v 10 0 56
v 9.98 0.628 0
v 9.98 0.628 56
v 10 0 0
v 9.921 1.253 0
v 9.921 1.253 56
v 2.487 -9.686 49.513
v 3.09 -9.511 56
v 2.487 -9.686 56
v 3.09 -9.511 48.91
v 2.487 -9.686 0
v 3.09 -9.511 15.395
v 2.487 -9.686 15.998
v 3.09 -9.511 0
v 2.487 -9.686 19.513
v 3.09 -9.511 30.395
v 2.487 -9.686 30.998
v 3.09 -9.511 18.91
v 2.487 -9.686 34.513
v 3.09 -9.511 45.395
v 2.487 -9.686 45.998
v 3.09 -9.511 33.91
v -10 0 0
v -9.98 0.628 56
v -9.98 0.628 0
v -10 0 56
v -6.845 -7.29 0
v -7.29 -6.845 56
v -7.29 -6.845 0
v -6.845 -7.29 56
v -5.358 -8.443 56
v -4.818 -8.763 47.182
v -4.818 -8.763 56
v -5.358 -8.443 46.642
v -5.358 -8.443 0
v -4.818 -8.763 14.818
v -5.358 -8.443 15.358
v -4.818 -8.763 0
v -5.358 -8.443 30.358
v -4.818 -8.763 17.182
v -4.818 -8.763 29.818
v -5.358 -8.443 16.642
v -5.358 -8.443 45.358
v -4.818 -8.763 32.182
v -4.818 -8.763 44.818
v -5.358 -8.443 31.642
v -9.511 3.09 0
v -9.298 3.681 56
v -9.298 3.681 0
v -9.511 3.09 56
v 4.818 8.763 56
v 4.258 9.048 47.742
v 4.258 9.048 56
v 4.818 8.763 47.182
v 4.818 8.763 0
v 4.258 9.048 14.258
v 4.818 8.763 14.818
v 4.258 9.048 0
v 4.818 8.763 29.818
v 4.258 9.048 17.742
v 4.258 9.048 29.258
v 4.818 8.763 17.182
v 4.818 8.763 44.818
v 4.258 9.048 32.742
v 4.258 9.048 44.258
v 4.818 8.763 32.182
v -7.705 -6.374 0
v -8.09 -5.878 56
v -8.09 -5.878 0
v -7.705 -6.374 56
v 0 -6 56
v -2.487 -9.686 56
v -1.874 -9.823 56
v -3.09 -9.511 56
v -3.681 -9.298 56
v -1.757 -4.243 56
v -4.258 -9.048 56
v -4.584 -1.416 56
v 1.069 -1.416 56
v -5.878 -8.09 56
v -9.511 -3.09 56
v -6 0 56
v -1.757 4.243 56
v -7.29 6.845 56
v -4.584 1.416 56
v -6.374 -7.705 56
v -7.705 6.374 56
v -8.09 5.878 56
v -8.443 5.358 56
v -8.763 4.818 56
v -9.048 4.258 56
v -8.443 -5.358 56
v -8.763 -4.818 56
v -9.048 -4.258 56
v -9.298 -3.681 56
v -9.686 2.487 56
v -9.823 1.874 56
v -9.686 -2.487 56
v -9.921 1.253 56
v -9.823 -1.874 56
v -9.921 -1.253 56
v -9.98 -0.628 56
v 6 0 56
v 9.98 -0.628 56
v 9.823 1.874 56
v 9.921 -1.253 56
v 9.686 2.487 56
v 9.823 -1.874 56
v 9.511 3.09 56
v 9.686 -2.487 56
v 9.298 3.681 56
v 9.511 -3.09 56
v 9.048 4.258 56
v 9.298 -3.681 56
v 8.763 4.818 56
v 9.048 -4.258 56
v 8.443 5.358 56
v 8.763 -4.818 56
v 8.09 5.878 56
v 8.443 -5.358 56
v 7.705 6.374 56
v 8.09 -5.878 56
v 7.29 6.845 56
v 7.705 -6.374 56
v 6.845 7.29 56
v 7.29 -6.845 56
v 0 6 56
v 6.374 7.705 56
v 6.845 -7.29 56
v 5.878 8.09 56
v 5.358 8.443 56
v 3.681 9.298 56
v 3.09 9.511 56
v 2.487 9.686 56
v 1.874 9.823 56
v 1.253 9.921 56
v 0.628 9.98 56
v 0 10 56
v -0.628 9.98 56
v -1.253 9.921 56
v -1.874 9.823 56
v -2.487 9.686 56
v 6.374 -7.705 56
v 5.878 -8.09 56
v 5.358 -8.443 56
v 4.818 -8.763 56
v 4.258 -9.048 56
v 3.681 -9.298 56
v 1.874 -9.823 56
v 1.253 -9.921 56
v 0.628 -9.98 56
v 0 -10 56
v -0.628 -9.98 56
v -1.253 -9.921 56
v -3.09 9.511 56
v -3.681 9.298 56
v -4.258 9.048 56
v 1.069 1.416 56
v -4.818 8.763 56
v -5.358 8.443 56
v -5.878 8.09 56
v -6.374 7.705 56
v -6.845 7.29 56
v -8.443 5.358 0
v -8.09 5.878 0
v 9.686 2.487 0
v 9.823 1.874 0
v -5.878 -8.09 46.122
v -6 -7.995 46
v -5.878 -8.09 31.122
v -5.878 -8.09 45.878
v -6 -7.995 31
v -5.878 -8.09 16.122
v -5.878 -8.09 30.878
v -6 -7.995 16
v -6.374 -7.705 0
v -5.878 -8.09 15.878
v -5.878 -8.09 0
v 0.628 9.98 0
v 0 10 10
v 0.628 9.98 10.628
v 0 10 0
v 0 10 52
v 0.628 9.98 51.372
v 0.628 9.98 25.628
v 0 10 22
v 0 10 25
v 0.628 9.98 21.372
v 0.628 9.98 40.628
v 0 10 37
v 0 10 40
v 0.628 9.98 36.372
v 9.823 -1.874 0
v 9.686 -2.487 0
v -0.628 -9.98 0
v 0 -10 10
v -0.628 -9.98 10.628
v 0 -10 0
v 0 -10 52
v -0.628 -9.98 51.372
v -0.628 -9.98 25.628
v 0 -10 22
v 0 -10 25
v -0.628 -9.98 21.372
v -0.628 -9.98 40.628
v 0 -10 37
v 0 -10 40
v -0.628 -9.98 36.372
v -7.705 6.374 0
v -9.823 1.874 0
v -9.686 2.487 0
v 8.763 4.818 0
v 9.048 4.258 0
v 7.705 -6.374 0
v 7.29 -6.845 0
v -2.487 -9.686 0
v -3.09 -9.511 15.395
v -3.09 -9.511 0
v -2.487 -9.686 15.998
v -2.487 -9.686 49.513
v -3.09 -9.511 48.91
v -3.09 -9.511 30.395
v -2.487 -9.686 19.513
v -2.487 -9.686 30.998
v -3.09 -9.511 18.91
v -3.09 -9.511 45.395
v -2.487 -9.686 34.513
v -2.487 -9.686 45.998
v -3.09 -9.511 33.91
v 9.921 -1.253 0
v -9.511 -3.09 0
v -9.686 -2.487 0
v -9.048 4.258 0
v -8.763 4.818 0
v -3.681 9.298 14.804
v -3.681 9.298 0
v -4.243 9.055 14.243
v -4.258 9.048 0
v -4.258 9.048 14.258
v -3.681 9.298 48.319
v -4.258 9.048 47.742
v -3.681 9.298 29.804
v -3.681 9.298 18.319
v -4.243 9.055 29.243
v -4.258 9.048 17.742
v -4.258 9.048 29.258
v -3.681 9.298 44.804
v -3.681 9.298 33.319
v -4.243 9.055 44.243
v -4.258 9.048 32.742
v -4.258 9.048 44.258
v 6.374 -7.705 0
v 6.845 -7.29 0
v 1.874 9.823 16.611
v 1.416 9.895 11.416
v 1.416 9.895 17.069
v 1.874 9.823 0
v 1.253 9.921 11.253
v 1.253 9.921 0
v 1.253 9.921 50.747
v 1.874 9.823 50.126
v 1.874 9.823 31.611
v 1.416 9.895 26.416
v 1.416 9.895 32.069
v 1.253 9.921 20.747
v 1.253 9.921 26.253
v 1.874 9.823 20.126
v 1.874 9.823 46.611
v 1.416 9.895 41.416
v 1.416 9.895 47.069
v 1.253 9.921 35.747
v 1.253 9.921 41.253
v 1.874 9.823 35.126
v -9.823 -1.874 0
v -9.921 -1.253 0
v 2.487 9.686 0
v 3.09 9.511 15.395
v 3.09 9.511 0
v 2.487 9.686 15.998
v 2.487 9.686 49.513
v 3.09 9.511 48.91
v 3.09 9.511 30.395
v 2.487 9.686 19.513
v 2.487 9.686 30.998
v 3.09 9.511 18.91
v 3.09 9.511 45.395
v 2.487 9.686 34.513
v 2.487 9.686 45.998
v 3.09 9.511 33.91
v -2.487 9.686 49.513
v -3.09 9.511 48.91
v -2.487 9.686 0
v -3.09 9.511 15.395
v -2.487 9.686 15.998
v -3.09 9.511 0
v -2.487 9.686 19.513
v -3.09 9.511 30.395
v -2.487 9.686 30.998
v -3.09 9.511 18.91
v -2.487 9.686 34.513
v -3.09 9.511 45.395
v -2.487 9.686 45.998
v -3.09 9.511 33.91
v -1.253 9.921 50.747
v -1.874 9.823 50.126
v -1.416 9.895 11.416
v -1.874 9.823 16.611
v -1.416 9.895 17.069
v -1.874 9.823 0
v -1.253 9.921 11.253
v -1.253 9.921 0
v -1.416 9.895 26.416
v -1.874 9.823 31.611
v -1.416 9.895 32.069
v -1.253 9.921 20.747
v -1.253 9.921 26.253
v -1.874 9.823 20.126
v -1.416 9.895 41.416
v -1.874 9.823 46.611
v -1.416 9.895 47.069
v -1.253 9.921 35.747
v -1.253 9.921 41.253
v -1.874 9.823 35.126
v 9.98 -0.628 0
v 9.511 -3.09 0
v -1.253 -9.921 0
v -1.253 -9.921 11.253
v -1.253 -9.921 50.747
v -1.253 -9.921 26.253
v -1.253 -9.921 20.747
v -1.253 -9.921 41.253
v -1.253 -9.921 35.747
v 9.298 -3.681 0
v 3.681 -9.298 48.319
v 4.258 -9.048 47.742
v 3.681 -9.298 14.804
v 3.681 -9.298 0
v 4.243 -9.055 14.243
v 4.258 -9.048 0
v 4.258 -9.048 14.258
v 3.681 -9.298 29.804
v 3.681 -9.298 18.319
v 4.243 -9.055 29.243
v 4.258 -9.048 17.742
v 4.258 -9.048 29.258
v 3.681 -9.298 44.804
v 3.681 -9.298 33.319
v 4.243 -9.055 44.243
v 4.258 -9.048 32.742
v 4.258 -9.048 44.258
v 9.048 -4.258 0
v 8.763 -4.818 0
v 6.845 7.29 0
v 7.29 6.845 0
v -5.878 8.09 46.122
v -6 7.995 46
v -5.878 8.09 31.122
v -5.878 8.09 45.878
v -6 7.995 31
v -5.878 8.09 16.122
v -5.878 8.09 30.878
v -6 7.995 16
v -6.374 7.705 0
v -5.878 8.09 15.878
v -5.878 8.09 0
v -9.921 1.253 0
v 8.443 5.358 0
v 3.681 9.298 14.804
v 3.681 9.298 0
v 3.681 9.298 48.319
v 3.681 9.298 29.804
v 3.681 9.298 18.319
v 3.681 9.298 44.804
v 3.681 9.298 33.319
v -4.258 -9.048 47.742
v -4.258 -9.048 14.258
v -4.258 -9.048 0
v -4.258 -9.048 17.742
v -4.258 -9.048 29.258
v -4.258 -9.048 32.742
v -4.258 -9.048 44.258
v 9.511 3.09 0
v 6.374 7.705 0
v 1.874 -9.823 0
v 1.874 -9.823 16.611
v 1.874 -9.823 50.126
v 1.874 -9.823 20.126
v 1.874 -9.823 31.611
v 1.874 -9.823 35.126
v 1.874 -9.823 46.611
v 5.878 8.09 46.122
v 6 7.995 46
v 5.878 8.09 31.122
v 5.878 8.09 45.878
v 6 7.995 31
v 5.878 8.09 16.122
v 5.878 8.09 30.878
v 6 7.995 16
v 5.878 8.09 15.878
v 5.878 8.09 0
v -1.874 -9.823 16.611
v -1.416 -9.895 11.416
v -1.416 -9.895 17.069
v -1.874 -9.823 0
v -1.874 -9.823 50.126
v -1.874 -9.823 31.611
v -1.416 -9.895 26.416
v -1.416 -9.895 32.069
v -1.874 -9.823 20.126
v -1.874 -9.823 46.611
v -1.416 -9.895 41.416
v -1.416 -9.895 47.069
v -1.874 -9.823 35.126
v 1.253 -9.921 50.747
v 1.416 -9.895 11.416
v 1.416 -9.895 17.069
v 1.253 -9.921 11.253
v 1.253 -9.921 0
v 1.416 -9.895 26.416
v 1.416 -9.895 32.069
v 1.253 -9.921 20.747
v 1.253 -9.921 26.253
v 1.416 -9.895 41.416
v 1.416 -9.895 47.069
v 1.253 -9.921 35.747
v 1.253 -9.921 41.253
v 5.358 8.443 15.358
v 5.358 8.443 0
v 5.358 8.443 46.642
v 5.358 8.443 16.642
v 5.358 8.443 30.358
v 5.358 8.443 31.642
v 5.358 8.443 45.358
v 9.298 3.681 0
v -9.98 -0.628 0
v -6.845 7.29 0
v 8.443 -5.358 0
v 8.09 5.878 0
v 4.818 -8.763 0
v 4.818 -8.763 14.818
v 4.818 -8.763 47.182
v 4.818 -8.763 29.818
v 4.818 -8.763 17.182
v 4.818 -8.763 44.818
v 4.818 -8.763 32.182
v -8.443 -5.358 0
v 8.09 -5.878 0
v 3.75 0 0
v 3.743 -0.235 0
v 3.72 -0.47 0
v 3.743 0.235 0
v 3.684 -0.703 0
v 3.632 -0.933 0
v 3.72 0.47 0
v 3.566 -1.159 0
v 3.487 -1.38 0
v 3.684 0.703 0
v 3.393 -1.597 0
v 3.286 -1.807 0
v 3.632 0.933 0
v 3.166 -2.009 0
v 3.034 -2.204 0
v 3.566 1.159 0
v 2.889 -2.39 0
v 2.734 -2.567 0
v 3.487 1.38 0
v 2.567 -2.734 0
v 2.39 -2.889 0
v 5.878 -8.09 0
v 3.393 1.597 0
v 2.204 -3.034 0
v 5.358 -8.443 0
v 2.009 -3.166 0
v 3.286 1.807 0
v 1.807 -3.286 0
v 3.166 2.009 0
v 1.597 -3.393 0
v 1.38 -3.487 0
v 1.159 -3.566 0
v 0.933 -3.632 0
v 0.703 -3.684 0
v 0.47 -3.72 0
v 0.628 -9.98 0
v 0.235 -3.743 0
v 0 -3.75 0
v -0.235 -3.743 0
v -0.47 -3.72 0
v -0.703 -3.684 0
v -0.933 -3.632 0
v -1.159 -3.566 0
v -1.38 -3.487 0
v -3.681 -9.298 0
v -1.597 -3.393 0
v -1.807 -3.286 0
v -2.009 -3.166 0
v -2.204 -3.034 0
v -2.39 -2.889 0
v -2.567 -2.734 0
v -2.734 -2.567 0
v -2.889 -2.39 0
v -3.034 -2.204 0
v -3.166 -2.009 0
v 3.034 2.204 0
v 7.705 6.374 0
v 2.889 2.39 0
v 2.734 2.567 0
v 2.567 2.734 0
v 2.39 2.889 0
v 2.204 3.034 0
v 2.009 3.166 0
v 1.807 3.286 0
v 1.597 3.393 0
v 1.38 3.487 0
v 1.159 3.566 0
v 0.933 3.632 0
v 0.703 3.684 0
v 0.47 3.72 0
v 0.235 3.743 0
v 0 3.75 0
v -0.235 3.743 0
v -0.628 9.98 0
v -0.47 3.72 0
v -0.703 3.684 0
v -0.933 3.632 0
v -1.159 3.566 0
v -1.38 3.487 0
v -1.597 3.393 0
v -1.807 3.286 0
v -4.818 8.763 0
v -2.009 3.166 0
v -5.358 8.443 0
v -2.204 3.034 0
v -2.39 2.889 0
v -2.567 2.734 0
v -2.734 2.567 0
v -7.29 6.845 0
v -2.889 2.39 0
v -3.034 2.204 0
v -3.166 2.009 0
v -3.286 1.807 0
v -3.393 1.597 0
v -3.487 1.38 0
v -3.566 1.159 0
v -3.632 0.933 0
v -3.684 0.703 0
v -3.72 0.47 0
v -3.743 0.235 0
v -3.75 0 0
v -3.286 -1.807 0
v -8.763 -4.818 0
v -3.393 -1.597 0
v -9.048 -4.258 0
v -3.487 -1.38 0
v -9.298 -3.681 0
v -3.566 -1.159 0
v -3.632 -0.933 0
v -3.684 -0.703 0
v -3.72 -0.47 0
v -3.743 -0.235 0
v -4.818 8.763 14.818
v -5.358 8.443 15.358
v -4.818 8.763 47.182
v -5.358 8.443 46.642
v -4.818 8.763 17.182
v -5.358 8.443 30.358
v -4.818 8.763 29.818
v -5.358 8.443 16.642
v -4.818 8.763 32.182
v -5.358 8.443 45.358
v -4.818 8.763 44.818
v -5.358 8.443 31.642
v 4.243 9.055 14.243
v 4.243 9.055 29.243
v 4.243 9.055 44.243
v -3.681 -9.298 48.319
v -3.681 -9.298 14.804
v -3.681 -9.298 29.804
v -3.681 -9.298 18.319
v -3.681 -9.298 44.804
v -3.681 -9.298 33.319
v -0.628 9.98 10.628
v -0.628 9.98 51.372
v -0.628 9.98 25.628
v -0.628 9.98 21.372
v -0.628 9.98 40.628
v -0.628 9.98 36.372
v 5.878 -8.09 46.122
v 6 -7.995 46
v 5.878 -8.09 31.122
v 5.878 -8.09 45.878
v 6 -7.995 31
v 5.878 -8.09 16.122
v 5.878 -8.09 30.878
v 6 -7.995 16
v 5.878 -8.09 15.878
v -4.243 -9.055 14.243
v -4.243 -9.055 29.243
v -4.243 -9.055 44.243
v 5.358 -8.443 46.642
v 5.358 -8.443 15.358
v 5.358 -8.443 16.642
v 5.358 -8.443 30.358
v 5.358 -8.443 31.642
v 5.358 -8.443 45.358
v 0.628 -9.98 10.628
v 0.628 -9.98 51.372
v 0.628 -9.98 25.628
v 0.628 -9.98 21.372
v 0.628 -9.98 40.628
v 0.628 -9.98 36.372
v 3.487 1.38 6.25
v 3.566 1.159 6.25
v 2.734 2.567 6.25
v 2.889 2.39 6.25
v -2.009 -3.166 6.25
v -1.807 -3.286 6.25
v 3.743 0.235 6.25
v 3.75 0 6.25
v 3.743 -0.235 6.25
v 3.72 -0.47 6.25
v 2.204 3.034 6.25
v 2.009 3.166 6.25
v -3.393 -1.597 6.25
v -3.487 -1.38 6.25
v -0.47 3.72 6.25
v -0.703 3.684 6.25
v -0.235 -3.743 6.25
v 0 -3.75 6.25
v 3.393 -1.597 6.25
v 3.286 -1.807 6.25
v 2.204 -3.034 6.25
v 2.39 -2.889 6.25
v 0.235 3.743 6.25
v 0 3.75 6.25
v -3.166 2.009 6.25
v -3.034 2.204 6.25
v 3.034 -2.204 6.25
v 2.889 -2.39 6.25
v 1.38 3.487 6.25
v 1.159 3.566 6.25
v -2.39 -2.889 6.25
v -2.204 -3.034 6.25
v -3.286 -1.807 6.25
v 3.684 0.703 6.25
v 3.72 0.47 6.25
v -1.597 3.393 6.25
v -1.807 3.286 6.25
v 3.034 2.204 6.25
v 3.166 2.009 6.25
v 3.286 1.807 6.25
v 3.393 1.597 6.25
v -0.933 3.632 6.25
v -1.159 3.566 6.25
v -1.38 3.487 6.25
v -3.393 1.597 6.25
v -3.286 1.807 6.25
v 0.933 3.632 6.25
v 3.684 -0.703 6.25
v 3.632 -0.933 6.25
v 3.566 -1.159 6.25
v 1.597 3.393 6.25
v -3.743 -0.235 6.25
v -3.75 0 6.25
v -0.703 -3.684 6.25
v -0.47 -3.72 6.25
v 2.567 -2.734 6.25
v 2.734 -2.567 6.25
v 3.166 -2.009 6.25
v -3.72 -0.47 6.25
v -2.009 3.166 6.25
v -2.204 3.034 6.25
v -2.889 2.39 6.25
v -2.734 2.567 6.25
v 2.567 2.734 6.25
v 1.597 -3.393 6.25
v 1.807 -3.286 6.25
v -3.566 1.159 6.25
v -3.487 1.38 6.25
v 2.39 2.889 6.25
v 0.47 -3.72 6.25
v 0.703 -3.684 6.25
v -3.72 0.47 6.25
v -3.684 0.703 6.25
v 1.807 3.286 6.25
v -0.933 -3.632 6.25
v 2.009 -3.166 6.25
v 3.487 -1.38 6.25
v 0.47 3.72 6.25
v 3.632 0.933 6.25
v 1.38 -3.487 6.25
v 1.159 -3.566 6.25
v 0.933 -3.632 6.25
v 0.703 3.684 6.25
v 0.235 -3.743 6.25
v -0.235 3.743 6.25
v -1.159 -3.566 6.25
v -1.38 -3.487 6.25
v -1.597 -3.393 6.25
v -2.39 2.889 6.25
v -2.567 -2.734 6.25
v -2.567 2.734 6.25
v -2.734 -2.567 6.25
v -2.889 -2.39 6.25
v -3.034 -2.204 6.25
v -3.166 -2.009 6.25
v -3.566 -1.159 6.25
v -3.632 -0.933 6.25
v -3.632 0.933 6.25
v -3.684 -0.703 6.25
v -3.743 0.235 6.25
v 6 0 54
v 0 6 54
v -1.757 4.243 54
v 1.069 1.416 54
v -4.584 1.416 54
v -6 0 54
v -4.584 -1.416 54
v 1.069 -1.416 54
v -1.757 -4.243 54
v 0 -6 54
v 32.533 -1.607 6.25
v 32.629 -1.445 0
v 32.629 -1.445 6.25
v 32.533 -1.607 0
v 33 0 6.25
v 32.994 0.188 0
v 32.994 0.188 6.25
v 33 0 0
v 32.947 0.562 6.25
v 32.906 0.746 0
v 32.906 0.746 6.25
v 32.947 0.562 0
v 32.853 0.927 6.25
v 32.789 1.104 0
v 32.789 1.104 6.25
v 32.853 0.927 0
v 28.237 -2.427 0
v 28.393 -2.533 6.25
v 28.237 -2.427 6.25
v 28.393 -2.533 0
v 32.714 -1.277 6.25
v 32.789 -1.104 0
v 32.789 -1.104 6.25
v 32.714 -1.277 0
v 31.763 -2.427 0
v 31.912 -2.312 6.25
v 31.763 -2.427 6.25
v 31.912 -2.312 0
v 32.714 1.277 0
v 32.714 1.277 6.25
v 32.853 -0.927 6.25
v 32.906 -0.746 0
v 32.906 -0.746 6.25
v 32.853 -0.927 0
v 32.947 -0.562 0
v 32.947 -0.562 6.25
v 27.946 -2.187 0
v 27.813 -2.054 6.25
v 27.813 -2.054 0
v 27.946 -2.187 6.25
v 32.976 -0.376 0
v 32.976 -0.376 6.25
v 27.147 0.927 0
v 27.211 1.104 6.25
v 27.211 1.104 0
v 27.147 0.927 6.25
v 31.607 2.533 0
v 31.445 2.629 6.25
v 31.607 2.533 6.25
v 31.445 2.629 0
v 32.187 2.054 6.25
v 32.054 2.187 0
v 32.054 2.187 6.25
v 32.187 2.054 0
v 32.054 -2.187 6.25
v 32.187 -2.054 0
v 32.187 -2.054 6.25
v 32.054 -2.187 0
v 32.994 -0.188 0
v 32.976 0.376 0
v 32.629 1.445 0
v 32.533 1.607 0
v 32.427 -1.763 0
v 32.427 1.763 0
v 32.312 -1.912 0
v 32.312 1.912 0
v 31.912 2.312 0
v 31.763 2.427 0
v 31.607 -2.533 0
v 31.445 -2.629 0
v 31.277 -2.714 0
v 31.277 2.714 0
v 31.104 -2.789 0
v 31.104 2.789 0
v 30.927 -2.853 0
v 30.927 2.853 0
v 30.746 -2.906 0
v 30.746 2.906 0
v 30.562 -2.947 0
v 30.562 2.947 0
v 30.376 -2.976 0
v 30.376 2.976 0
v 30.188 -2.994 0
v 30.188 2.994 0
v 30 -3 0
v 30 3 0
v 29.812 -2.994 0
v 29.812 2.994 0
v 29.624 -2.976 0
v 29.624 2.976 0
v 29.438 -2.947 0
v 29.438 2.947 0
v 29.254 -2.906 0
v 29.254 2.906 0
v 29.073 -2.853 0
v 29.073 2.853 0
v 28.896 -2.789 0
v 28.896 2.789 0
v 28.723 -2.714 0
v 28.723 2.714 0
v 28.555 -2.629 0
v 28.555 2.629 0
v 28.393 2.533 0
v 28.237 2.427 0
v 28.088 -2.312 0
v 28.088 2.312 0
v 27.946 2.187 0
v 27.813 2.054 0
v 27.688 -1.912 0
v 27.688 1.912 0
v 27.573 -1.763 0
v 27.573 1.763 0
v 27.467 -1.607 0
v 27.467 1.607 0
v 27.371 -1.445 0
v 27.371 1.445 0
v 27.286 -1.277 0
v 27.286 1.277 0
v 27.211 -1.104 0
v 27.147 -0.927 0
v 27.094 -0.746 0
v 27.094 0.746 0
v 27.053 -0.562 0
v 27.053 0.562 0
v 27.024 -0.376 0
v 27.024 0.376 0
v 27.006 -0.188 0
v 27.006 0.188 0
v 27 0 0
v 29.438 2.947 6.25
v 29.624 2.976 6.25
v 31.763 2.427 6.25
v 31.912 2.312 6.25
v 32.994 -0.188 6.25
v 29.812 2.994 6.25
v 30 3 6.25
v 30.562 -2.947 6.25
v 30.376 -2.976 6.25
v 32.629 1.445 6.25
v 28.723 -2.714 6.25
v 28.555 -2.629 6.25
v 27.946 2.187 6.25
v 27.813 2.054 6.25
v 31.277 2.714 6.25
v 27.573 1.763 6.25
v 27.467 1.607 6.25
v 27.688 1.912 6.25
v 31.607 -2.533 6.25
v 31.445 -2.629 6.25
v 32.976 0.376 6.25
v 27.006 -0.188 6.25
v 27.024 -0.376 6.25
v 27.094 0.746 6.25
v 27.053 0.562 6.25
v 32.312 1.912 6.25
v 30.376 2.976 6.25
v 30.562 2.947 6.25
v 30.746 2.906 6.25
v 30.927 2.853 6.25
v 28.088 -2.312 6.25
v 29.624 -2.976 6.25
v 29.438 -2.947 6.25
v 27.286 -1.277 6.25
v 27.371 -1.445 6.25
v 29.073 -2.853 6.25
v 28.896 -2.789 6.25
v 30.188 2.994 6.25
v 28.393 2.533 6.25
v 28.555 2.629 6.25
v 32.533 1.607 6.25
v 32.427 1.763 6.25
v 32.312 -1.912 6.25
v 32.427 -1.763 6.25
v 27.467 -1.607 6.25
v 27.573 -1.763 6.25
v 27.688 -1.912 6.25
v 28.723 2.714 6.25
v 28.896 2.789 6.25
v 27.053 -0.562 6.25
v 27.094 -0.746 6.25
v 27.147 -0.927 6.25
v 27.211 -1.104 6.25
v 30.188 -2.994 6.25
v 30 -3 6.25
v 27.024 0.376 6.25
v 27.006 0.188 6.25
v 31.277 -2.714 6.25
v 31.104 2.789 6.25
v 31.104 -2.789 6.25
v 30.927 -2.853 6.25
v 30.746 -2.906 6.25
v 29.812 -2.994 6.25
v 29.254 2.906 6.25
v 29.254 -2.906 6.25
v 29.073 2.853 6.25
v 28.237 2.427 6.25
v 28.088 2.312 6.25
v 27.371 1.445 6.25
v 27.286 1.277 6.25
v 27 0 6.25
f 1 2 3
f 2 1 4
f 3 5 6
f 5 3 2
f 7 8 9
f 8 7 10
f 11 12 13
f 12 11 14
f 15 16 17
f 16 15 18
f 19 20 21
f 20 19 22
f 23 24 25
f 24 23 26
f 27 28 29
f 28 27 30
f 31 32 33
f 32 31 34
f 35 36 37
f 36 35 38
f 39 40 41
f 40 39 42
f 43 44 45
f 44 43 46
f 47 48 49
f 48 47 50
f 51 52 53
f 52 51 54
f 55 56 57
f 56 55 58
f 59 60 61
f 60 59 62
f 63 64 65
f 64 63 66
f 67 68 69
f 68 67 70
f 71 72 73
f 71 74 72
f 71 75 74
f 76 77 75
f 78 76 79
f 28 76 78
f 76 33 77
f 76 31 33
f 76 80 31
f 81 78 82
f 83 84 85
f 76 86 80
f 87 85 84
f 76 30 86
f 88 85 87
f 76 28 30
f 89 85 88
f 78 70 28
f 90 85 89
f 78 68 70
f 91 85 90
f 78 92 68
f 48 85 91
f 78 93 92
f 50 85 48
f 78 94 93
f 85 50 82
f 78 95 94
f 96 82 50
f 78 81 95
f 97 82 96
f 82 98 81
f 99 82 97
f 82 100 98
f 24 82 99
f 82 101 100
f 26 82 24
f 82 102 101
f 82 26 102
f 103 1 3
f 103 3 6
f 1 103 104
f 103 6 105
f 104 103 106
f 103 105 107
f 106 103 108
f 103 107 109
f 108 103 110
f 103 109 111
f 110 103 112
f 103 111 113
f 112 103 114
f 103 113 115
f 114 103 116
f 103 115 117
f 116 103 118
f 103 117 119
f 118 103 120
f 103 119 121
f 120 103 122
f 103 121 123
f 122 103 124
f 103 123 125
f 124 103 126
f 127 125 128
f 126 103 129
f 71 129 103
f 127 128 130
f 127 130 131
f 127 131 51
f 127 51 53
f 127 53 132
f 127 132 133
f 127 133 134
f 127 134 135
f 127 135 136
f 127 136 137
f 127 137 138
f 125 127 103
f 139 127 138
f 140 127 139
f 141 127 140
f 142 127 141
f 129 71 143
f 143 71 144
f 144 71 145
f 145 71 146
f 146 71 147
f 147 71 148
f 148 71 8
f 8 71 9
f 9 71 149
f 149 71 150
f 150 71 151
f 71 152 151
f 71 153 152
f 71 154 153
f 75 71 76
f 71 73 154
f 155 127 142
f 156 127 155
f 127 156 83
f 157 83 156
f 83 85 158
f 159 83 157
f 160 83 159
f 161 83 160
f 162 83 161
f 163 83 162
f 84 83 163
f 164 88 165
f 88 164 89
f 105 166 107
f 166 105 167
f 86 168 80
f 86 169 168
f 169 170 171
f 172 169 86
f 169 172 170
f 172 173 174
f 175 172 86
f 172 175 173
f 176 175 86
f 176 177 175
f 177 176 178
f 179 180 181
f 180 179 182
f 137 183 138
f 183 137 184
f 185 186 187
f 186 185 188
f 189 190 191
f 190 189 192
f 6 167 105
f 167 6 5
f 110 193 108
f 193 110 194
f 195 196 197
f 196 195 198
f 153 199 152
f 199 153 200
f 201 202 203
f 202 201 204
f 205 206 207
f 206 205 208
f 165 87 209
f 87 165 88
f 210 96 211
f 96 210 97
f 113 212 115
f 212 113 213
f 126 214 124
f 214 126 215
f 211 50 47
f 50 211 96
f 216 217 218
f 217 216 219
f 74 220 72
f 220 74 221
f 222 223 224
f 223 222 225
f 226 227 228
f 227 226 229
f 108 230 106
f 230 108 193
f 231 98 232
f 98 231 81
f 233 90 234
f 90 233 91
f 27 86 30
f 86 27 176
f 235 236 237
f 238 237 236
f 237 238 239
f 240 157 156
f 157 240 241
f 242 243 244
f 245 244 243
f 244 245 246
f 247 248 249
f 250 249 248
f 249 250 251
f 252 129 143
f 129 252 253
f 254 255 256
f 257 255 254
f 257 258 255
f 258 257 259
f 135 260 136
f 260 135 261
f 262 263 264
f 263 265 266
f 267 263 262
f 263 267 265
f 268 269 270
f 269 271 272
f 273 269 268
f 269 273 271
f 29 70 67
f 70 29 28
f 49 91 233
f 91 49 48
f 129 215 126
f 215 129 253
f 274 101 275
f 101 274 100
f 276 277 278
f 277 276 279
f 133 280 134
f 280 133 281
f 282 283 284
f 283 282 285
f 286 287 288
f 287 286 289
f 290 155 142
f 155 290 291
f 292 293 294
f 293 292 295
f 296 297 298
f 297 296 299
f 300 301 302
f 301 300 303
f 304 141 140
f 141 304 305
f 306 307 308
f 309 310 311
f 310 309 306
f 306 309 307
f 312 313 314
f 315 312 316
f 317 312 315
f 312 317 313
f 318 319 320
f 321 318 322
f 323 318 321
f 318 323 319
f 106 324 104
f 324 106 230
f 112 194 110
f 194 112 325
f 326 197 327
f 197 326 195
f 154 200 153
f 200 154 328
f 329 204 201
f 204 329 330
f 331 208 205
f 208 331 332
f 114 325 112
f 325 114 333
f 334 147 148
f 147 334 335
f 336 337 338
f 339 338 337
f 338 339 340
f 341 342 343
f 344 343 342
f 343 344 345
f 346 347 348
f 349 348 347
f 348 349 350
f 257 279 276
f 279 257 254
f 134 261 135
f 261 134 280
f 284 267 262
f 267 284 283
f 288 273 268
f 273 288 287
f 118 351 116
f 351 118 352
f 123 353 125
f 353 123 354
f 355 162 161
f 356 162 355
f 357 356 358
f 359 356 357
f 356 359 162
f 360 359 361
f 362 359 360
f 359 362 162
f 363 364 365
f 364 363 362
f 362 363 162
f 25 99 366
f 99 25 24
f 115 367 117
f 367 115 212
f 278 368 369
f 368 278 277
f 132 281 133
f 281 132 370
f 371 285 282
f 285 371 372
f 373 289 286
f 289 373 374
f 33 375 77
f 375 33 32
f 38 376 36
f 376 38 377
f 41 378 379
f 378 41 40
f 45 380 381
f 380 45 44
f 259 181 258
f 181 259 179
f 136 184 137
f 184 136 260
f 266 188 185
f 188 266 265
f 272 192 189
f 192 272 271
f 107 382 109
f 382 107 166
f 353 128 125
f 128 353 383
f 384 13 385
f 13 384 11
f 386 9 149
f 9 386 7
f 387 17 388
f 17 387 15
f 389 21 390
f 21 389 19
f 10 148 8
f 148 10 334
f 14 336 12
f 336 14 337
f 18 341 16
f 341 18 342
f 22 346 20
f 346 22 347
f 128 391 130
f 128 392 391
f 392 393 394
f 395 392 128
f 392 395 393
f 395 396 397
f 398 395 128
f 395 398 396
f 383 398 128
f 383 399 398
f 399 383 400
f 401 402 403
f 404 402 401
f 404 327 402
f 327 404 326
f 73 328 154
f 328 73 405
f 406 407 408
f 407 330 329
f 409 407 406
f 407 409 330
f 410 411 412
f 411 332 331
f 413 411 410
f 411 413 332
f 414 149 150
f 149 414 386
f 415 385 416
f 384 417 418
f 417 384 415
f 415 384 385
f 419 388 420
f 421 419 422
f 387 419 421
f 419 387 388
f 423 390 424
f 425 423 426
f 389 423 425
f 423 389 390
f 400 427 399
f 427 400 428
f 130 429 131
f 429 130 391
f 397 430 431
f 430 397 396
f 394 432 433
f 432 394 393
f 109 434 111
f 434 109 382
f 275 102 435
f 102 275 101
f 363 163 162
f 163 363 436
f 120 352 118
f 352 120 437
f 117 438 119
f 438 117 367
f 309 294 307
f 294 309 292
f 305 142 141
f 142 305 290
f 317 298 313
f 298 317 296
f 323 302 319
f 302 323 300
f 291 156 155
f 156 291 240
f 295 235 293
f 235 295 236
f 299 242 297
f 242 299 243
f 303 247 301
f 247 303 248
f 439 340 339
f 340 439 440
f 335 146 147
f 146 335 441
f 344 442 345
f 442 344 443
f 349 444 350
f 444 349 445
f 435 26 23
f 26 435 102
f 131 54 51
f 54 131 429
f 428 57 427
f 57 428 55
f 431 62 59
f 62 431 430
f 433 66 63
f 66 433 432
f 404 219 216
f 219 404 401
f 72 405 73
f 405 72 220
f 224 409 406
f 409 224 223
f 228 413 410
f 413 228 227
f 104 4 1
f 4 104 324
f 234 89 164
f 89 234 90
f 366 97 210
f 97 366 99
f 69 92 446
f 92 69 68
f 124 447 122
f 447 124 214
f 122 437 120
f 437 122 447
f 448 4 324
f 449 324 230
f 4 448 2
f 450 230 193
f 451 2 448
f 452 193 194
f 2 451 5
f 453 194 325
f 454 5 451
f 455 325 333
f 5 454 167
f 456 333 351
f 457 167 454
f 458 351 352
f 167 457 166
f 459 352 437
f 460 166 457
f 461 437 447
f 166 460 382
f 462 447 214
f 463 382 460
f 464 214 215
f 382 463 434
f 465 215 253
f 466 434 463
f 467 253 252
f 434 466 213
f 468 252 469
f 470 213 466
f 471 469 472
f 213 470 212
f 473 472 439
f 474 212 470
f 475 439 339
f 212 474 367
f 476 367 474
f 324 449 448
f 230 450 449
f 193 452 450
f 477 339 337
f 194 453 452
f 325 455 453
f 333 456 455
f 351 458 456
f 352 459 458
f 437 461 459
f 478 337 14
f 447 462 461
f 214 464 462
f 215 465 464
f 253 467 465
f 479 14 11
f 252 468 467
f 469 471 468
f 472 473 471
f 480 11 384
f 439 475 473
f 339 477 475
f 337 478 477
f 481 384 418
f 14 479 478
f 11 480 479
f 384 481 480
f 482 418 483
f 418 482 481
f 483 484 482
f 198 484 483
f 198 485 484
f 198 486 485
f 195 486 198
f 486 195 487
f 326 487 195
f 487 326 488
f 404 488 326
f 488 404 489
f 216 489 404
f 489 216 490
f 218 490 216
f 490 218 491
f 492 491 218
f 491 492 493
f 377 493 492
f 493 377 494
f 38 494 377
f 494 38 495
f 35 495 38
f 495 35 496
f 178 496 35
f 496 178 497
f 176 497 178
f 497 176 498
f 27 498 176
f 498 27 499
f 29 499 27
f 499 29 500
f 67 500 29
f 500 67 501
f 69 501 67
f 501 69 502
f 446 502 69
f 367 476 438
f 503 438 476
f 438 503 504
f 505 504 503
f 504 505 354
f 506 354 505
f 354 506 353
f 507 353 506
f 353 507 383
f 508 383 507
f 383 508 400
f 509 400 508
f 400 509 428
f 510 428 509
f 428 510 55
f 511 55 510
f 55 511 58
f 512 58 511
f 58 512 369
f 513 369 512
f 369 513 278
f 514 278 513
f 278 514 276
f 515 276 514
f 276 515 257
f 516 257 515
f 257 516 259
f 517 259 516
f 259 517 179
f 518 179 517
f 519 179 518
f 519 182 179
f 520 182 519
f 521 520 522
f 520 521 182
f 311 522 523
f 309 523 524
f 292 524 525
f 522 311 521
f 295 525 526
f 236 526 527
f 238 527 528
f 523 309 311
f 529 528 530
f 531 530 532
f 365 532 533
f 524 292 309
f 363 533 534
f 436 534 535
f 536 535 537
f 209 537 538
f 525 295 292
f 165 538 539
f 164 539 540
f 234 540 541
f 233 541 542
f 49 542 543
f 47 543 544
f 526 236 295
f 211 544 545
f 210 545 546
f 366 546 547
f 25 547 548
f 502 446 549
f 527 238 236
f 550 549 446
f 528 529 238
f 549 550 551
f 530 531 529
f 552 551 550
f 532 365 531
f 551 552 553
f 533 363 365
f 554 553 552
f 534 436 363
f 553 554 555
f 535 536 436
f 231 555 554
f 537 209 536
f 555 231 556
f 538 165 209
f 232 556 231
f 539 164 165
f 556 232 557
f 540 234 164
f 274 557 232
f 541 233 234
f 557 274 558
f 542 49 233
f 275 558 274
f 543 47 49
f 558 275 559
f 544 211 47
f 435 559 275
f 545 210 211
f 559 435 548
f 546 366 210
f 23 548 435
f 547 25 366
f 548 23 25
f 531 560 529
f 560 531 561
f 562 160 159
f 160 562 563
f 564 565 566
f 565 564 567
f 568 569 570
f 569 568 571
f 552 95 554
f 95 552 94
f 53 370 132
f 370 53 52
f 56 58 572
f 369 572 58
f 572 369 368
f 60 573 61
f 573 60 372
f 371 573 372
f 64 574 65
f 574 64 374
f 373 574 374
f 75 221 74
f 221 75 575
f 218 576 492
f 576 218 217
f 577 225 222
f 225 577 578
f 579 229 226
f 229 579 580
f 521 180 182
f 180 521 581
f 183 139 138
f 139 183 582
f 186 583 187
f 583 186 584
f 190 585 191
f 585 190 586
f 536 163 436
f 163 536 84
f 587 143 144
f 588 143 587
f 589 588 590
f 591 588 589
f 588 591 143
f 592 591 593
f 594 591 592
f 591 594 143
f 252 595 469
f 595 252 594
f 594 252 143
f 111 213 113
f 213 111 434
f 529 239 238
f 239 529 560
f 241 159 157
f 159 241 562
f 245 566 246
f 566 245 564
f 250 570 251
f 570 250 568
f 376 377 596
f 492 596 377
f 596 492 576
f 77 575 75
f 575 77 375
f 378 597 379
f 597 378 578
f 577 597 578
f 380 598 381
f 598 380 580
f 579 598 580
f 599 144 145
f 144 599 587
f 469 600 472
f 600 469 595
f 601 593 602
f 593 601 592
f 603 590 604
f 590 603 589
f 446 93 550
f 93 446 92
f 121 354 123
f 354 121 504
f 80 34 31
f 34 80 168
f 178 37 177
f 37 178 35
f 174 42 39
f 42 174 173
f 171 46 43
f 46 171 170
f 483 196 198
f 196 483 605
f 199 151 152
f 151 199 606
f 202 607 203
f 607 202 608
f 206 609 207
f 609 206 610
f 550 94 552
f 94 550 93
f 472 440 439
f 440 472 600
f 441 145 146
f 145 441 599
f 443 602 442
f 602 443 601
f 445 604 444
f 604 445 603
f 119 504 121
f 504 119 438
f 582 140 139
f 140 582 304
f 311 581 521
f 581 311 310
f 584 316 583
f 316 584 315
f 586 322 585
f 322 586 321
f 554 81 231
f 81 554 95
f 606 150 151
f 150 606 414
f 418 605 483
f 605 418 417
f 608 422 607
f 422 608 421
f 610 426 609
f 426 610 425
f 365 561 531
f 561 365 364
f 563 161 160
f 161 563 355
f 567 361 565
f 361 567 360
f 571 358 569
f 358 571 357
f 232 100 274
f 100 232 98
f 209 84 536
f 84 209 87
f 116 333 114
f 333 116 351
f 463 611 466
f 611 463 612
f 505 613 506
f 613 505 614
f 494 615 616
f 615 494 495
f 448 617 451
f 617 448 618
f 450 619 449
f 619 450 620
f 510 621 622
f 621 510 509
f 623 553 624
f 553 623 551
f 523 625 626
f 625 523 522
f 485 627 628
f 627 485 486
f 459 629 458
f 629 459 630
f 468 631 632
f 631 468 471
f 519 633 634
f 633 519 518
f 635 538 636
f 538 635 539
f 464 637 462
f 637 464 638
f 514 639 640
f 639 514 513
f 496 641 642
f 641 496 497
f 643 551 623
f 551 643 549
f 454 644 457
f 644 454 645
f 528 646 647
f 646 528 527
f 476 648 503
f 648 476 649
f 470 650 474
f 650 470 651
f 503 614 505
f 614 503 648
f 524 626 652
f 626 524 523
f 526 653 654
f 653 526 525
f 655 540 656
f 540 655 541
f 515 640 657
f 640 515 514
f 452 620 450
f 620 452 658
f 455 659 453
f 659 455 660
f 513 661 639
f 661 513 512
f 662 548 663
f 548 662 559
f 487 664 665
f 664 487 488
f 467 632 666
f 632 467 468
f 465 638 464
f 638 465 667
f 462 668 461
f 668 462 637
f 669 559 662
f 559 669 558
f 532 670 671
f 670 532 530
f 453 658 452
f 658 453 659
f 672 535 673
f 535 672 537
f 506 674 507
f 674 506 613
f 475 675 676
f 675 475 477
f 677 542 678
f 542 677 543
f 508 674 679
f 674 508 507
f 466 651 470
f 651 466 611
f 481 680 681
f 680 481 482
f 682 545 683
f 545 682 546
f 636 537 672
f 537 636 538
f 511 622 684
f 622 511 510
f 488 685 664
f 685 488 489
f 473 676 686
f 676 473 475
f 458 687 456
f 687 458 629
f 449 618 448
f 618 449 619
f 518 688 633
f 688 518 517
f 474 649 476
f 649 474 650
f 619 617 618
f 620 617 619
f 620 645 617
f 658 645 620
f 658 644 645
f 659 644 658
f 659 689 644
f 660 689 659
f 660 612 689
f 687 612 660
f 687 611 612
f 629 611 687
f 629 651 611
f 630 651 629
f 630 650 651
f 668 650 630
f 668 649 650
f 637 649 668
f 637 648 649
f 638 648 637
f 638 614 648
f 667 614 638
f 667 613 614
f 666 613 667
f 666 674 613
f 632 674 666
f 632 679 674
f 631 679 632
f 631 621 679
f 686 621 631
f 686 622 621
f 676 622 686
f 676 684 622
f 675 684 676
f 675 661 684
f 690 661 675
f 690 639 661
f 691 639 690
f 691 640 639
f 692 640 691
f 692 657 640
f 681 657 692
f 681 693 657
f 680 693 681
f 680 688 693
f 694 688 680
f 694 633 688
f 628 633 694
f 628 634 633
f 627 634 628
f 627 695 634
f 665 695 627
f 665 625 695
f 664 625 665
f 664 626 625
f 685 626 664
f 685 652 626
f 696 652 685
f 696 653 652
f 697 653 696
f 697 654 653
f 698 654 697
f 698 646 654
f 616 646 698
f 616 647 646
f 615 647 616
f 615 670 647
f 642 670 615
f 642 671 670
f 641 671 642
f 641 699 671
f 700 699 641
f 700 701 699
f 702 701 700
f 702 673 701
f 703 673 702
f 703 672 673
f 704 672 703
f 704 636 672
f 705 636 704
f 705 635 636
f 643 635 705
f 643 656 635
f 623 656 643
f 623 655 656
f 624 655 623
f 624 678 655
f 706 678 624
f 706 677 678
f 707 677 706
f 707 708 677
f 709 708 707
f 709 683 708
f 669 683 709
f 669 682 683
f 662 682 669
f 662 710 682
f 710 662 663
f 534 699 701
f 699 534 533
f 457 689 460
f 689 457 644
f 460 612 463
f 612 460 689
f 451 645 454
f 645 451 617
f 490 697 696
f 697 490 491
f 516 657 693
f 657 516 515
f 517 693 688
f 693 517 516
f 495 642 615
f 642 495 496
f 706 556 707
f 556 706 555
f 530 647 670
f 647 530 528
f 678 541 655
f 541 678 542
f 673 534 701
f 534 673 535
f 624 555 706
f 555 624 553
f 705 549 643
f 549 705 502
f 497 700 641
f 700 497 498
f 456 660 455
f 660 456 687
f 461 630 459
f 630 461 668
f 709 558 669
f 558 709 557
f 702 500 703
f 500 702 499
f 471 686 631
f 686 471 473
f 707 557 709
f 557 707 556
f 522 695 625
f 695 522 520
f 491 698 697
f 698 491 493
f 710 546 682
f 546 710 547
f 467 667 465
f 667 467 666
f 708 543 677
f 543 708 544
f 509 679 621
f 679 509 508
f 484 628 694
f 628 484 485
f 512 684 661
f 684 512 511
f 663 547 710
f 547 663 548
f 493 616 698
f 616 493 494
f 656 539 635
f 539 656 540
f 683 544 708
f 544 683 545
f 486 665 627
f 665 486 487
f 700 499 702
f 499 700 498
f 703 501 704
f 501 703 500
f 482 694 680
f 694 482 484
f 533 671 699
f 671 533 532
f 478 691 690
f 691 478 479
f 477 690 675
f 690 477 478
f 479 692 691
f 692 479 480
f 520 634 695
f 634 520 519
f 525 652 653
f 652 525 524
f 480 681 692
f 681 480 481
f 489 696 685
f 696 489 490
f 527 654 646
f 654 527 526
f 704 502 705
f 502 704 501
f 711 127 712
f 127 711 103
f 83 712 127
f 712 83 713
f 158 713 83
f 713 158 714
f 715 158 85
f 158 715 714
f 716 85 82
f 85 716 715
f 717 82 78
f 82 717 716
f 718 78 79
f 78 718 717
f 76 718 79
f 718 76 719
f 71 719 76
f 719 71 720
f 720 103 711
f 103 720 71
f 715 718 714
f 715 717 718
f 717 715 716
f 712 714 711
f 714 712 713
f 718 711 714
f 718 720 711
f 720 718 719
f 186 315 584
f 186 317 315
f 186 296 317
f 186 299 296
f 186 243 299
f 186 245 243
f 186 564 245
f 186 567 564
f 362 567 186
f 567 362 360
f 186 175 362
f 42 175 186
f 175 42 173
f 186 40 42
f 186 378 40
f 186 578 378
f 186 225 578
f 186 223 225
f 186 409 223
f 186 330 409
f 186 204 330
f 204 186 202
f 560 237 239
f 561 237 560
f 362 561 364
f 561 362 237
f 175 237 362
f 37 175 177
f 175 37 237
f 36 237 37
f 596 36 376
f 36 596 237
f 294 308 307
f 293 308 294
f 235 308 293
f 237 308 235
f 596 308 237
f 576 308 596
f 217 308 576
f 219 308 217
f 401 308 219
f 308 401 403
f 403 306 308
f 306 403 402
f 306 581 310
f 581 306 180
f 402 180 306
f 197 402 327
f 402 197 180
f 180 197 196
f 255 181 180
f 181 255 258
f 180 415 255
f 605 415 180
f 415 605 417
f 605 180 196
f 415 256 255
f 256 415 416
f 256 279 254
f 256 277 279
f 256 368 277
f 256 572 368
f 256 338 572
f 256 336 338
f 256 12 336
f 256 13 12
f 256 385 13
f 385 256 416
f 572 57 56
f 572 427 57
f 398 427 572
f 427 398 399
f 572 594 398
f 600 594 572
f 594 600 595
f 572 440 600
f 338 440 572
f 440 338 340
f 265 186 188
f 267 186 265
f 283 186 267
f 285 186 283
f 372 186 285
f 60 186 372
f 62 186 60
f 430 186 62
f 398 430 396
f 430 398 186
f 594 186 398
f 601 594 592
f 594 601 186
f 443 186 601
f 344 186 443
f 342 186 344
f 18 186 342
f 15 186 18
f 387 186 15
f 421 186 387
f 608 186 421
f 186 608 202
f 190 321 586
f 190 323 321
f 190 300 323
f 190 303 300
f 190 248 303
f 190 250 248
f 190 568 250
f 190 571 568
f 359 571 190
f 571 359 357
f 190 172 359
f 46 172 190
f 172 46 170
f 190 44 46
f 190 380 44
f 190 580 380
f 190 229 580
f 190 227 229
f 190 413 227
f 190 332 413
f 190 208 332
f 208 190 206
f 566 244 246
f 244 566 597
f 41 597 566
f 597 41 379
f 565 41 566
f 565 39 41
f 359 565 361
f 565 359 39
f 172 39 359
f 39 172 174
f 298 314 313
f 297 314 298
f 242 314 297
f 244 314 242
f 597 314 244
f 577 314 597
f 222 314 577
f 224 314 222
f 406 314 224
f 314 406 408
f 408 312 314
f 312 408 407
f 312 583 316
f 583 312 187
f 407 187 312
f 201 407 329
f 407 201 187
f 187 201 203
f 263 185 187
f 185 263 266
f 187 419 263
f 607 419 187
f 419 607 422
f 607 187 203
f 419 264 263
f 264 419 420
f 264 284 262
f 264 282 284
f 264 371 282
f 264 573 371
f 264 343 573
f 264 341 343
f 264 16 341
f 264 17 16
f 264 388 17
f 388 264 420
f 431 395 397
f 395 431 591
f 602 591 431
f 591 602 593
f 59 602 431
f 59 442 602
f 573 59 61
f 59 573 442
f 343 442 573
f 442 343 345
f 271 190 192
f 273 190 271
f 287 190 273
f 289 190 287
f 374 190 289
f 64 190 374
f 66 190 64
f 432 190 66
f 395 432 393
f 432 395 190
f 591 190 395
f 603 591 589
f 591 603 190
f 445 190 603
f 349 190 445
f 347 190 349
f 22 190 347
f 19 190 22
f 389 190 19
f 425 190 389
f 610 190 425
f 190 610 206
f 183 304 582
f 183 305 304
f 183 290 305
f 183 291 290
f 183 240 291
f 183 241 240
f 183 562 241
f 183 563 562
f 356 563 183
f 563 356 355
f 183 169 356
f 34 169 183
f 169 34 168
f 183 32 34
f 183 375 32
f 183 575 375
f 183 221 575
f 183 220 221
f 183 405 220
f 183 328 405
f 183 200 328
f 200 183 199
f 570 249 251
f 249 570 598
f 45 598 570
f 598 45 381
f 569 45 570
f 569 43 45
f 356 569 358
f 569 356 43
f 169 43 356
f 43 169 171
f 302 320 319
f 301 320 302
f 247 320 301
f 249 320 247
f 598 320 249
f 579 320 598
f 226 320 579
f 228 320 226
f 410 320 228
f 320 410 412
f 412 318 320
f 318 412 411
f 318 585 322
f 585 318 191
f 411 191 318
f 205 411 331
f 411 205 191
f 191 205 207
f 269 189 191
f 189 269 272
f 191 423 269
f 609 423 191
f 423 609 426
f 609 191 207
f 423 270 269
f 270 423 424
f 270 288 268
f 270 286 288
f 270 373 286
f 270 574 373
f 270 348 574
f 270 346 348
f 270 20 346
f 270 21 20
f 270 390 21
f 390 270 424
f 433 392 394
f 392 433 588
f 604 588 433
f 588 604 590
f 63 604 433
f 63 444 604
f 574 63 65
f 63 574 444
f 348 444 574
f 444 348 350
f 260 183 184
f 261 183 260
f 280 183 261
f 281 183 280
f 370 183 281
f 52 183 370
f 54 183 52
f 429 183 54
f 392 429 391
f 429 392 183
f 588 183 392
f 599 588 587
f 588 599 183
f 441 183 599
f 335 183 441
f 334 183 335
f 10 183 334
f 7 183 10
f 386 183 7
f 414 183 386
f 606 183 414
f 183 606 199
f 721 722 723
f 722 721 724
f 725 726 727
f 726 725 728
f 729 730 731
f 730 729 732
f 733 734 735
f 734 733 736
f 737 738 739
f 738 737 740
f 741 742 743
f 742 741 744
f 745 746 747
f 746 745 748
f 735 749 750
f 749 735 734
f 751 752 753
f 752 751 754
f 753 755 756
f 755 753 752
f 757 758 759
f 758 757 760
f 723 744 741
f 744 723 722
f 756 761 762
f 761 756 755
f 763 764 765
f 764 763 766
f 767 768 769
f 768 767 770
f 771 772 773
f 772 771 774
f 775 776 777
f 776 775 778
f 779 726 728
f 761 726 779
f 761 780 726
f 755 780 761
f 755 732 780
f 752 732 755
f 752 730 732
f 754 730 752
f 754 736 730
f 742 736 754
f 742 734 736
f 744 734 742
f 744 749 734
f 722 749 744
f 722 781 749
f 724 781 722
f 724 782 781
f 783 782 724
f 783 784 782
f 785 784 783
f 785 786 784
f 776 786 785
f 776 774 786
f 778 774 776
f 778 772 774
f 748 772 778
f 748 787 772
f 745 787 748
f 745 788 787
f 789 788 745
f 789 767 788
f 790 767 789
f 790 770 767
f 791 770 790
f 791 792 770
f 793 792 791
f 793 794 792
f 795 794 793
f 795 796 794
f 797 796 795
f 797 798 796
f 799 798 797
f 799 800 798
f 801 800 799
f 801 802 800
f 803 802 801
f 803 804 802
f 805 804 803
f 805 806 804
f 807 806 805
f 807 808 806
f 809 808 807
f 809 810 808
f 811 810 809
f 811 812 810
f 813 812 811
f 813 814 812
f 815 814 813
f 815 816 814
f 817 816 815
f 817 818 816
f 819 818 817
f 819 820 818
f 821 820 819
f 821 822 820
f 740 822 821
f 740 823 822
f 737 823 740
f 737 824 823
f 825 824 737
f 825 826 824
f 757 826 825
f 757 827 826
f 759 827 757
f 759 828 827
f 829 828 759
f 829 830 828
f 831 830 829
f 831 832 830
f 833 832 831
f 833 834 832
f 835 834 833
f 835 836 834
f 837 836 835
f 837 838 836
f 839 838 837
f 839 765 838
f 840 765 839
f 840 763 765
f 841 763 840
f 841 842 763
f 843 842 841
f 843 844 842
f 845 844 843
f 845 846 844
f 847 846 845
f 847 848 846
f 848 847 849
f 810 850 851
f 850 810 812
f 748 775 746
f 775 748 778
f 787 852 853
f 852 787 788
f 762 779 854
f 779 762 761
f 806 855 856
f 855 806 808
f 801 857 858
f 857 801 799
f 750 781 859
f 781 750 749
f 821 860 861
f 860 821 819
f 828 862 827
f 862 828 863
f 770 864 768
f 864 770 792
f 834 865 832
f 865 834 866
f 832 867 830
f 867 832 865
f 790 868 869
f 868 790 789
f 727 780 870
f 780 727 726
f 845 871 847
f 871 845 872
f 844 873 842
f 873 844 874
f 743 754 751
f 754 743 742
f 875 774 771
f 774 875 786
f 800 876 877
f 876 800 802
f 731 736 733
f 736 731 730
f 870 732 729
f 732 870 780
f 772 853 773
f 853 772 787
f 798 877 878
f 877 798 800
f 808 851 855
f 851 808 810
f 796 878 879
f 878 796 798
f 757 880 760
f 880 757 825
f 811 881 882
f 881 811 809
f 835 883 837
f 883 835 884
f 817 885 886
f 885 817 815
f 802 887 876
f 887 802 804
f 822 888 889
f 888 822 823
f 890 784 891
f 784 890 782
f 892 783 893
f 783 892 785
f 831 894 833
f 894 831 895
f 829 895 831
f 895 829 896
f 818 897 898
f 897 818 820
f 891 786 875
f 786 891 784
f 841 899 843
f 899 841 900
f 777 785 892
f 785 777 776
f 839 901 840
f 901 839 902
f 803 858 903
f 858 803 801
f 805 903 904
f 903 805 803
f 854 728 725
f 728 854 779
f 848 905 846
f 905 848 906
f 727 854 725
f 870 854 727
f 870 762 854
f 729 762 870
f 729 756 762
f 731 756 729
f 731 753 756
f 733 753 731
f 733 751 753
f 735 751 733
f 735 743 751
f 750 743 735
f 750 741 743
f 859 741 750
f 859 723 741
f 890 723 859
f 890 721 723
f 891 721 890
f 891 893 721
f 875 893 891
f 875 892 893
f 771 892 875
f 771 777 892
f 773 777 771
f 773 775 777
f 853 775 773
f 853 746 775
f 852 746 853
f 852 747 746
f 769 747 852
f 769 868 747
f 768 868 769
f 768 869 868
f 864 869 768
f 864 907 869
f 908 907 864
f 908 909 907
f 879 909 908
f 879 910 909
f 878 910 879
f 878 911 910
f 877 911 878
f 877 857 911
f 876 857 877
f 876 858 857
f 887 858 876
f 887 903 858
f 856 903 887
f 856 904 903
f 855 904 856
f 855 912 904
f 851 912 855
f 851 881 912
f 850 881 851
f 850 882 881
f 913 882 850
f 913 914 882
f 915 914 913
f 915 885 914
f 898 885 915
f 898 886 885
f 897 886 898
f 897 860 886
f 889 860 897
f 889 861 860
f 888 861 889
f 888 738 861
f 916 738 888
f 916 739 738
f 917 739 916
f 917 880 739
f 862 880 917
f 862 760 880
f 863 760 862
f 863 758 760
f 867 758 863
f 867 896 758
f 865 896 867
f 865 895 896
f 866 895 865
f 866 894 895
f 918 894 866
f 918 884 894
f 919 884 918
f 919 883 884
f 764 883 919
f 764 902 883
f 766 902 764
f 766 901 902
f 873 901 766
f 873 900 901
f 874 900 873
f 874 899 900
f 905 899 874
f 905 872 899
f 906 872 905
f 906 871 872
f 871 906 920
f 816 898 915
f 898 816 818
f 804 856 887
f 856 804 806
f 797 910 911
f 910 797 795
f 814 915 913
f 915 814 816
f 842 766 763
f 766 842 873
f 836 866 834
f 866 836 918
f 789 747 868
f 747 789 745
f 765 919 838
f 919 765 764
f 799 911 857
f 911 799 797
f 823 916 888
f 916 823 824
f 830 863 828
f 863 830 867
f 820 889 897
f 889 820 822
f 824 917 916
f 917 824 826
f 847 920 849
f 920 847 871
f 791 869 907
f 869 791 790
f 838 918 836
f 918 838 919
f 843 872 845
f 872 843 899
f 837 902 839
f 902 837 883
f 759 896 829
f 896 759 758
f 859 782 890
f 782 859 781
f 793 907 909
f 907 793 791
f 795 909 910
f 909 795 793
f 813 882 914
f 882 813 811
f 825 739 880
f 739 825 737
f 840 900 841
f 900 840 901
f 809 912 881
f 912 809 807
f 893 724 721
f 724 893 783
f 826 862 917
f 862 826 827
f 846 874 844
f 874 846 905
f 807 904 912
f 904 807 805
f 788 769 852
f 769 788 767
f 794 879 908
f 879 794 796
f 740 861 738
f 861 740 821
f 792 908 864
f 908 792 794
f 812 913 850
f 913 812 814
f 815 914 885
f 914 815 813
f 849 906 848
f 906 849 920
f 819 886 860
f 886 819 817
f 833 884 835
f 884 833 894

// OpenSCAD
od = 19.85; // primary diameter
id = 20.00; // diameter in the brass
ih = 6.50;
ph = 6.25; // primer height
th = 56.0;
pid = 6.0; // primer inner diameter
pod = 7.5; // primer outer diameter
$fn = 100;
sqrt2 = sqrt(2);
gold = (1+sqrt(5))/2;
arrow_scale = 0.6*id;

module make_poly_arrow(a, h) {
    linear_extrude(h) 
    polygon([[a, a/2],
             [a/2, 0],
             [a/2/sqrt2, a/2*(1-1/sqrt2)],
             [(1+sqrt2)*a/2-a/gold, a*(1-1/gold)],
             [a/gold-a/2, a*(1-1/gold)],
             [0, a/2],
             [a/gold-a/2, a/gold],
             [(1+sqrt2)*a/2-a/gold, a/gold],
             [a/2/sqrt2, a/2*(1+1/sqrt2)],
             [a/2, a],
             [a, a/2]]);
}

/*make_poly_arrow(1000,100);*/

difference() {
    union() {
        cylinder(h = th, r = 0.5*id);
        translate([0,0,ih]) cylinder(h=th-ih, r=0.5*od);
    }
    translate([0,0,-0.1]) cylinder(h = ph+0.1, r=pod*0.5);
    
    translate([-arrow_scale/2, -arrow_scale/2, th - 2]) 
        rotate([0,0,0]) 
            make_poly_arrow(arrow_scale, 50);
    translate([arrow_scale/2, od-arrow_scale/2, 10]) 
        rotate([90,-90,0]) 
            make_poly_arrow(arrow_scale, 50);
    translate([arrow_scale/2, od-arrow_scale/2, 25]) 
        rotate([90,-90,0]) 
            make_poly_arrow(arrow_scale, 50);
    translate([arrow_scale/2, od-arrow_scale/2, 40]) 
        rotate([90,-90,0]) 
            make_poly_arrow(arrow_scale, 50);
}

translate([30,0,0]) color("black") cylinder(h=ph, r=pid*0.5);
